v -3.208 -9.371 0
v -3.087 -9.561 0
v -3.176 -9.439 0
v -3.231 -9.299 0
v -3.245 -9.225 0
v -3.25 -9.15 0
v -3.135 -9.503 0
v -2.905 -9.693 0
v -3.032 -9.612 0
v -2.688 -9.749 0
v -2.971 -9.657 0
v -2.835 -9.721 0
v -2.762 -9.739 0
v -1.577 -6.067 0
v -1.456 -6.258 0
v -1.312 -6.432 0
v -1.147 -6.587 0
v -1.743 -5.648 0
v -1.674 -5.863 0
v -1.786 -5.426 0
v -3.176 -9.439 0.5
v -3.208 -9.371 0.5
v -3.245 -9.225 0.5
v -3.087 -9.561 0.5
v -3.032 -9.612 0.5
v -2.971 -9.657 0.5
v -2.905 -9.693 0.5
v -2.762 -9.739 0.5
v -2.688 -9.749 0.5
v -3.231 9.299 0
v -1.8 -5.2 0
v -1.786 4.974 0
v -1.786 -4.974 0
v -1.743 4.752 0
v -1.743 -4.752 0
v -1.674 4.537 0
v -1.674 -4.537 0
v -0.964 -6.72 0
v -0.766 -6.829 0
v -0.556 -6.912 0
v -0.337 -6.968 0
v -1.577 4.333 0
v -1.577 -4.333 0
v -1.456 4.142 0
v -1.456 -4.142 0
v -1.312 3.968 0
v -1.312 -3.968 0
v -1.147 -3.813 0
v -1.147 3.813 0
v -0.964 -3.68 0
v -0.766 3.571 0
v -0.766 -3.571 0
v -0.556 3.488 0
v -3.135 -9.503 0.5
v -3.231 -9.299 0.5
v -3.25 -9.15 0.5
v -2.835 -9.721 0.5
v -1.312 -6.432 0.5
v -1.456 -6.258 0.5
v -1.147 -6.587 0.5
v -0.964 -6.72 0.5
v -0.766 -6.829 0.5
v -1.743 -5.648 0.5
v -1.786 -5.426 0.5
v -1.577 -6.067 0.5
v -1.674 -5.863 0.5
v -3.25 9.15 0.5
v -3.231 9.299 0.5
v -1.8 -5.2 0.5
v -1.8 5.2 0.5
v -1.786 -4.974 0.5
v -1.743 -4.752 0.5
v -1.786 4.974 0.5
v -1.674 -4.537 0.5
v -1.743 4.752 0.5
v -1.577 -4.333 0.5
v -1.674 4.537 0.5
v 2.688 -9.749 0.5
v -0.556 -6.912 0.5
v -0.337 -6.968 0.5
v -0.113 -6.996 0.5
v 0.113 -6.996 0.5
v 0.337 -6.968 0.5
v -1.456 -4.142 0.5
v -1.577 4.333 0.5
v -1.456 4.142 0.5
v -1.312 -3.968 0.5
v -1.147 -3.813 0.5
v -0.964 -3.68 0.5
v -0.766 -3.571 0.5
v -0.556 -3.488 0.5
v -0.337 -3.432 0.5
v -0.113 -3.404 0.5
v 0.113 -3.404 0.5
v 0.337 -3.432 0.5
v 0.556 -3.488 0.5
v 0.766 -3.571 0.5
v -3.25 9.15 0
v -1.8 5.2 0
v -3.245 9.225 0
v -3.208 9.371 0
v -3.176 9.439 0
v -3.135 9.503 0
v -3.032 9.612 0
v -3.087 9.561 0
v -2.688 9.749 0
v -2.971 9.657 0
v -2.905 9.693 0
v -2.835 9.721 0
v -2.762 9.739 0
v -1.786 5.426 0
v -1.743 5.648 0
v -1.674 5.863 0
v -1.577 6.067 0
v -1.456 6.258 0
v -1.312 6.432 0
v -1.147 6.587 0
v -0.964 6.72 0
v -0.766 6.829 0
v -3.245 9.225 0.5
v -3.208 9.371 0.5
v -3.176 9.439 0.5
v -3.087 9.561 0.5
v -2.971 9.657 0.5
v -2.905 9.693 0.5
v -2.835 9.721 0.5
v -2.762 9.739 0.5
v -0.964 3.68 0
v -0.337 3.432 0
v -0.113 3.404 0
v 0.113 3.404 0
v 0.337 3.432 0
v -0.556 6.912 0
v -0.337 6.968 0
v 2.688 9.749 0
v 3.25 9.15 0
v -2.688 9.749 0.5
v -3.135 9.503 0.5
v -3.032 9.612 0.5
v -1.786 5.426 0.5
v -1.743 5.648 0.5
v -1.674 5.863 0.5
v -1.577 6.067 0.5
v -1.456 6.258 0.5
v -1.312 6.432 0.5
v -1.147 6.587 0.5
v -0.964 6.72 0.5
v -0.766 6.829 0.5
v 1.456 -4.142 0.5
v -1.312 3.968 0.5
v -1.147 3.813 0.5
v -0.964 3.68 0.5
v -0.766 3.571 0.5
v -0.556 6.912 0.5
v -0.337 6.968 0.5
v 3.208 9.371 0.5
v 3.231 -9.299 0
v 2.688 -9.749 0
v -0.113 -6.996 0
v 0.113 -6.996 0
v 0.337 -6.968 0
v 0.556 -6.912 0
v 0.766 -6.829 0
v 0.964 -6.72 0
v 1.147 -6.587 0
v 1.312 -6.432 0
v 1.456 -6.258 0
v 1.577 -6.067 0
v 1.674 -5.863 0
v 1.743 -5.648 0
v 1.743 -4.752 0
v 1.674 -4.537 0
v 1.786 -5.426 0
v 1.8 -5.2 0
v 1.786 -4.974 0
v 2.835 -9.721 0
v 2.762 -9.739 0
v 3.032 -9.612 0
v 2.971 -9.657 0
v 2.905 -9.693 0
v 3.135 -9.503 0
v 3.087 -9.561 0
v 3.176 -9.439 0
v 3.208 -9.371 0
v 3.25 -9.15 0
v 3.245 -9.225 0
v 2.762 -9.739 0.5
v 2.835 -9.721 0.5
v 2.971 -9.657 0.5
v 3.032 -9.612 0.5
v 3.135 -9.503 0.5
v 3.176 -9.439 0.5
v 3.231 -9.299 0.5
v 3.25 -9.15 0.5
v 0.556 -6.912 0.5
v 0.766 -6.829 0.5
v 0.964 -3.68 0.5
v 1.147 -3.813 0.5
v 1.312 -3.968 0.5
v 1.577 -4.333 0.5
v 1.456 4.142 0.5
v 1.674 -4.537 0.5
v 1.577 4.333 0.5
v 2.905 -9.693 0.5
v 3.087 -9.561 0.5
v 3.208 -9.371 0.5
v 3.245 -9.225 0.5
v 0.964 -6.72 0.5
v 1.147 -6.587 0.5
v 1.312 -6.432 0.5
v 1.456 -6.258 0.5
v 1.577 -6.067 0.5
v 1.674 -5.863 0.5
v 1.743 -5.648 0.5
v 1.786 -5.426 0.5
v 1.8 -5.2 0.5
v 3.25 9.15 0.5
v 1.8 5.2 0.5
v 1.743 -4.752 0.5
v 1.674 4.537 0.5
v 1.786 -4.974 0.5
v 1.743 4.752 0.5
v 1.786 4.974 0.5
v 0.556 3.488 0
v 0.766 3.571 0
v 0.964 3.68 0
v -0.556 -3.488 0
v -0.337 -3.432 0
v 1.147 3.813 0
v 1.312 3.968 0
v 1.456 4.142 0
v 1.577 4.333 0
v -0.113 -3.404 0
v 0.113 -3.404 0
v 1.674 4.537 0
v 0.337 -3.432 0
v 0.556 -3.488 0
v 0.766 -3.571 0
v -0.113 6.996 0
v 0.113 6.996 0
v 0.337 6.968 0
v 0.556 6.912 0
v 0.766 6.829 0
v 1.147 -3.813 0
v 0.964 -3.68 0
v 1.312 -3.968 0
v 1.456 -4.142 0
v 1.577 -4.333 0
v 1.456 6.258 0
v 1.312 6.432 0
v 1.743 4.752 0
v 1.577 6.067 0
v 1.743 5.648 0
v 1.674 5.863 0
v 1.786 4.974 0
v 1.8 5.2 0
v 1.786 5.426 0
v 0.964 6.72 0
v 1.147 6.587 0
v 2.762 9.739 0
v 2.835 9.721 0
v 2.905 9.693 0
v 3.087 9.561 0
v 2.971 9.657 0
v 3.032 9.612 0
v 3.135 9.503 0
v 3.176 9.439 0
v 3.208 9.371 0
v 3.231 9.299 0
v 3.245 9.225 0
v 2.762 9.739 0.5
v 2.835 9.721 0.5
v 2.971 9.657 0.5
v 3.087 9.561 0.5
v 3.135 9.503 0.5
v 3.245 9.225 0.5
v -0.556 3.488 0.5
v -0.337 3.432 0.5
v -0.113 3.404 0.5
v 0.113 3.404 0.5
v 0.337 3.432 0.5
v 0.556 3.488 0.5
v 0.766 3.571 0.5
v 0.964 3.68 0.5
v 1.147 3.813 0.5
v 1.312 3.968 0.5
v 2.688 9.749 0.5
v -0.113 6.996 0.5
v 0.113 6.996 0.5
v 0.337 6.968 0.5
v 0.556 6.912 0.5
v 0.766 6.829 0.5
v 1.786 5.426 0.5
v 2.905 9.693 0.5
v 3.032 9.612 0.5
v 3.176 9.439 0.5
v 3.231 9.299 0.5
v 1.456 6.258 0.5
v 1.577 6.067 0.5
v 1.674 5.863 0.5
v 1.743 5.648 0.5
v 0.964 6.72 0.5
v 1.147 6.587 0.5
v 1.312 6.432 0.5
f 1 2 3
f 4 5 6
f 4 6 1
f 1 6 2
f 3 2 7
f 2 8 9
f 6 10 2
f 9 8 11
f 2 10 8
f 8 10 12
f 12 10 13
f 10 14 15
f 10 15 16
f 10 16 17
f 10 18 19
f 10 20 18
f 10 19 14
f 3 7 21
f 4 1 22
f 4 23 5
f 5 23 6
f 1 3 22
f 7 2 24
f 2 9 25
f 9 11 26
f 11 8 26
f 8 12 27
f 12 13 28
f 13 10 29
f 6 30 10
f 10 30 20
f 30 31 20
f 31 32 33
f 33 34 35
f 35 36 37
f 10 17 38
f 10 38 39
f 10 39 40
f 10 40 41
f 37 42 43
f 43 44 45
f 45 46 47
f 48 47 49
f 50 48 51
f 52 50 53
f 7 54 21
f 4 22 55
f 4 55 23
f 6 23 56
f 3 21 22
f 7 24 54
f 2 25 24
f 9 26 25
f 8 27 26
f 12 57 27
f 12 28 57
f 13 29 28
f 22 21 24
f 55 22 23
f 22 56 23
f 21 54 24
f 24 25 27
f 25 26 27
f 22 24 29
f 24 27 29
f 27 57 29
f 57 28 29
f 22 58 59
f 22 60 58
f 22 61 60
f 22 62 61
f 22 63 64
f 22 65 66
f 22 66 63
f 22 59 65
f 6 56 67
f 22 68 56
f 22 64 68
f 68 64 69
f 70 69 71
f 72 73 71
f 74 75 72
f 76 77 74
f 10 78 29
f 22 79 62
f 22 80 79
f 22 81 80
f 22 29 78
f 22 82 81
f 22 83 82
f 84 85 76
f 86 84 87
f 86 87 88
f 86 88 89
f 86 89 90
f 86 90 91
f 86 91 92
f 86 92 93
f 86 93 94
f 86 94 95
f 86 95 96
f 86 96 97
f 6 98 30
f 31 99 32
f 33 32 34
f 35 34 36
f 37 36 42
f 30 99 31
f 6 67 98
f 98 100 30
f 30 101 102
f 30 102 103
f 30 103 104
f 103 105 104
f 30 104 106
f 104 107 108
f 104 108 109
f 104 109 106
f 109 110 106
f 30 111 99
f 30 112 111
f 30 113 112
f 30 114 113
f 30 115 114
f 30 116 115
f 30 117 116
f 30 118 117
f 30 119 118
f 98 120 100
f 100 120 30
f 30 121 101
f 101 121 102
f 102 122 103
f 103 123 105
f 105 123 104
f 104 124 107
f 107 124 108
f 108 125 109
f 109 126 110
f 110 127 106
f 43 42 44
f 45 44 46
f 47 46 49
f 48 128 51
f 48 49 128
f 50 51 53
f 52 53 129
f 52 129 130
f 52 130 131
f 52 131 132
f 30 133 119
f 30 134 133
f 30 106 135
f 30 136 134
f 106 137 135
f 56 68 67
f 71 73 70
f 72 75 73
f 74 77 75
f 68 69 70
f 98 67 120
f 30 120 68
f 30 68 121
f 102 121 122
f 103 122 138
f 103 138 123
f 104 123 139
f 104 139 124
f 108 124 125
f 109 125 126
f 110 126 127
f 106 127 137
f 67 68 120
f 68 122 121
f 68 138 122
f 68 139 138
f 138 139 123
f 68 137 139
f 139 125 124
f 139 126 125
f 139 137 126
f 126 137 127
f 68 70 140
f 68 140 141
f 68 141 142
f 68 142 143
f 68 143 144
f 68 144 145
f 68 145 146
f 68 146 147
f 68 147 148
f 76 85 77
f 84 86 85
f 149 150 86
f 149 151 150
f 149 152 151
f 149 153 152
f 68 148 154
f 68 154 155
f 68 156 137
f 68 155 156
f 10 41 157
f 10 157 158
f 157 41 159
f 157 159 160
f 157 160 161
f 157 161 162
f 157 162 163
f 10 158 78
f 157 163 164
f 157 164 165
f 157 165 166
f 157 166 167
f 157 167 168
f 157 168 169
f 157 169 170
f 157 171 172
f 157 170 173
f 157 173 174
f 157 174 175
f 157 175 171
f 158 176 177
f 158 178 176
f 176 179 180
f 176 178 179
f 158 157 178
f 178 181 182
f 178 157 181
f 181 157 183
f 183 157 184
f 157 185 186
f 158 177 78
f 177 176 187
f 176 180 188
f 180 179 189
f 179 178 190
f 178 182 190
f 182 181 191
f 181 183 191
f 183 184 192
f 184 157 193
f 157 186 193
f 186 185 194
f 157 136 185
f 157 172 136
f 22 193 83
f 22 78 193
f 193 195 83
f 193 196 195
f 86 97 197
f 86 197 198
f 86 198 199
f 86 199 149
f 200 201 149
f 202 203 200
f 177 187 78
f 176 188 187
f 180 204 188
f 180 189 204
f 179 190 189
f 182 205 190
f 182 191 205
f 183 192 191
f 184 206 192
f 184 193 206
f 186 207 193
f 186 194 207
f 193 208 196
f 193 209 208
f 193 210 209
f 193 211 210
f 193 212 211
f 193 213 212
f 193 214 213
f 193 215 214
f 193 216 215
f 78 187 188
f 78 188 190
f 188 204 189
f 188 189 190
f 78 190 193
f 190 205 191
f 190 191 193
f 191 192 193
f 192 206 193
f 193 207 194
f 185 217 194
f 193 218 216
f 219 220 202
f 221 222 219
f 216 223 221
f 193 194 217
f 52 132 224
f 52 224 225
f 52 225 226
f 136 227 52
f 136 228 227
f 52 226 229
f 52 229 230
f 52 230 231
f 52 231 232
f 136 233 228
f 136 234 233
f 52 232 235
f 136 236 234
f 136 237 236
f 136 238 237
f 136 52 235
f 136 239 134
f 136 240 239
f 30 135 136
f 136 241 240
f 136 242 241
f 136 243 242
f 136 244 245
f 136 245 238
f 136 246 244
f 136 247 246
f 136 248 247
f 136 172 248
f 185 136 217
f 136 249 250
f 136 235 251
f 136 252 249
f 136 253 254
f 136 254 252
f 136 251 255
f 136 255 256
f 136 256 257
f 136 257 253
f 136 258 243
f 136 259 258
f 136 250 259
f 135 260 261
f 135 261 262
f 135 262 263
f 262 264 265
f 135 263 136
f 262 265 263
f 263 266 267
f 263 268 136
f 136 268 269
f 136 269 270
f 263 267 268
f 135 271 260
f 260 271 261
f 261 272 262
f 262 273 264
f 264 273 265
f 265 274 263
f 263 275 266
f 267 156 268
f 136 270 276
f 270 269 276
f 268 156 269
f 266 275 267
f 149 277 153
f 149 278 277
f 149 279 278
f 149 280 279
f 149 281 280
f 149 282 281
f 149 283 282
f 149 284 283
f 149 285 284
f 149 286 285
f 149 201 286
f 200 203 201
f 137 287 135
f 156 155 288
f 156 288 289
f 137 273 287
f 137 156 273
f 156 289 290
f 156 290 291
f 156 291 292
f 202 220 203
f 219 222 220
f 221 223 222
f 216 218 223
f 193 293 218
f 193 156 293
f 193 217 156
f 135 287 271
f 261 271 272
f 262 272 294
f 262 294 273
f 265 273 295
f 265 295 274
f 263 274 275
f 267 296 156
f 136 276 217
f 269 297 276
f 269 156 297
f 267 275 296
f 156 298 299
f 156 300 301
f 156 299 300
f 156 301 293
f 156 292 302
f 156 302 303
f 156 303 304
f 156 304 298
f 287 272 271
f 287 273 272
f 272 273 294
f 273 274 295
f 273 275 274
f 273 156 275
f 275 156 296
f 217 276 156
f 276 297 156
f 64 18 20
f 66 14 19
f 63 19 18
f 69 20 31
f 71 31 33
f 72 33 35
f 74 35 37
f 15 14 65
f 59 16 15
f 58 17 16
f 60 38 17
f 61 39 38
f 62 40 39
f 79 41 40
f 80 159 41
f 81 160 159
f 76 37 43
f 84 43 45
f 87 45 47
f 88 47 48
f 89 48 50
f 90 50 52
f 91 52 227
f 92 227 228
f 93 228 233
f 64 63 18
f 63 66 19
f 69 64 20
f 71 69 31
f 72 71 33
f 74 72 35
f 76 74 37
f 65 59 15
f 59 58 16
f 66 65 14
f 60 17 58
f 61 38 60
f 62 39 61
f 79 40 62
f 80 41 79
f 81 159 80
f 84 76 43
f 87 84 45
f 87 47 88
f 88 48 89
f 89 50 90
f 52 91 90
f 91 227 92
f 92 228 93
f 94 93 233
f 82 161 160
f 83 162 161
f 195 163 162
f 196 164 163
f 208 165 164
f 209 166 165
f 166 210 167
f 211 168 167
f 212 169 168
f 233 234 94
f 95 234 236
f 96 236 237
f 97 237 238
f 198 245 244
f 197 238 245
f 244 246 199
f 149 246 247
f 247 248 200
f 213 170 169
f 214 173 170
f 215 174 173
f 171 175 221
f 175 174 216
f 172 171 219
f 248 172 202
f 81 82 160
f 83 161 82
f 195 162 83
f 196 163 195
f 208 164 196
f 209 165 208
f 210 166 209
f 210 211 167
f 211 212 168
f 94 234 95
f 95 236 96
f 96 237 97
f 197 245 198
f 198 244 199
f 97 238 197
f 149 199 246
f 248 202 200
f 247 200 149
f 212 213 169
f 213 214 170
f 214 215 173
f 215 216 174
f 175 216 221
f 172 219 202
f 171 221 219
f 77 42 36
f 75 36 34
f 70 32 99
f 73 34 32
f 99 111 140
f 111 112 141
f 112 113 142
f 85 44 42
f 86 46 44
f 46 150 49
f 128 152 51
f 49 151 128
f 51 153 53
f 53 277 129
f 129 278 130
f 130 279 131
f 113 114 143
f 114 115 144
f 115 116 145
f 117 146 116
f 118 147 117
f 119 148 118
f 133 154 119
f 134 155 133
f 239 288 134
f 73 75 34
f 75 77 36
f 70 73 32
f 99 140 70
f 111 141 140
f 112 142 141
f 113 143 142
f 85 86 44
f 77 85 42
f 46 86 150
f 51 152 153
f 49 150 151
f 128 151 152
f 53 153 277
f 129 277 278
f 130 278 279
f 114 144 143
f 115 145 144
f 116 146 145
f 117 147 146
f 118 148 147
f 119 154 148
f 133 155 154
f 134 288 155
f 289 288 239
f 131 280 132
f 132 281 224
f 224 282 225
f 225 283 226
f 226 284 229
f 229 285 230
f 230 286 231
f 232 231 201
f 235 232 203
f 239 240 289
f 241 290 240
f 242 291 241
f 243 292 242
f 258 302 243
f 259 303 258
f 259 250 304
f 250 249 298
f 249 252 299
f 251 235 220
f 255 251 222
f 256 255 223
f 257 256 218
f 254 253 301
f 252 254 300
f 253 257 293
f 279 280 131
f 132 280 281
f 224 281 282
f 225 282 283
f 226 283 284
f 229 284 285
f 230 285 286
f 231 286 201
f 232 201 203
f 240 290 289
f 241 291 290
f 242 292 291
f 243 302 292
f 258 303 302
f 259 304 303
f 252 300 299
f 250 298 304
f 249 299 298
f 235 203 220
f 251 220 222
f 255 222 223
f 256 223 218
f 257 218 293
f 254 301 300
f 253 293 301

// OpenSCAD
$fn = 50;

difference() {
	union() {
		translate(v = [34.5, 0, 0.5]) {
			rotate(a = [0, 0, 0]) {
				difference() {
					union() {
						translate(v = [-34.5, 0, -0.5]) {
							hull() {
								translate(v = [-2.65, 9.15, 0]) {
									cylinder(h = 0.5, r = 0.6);
								}
								translate(v = [2.65, 9.15, 0]) {
									cylinder(h = 0.5, r = 0.6);
								}
								translate(v = [-2.65, -9.15, 0]) {
									cylinder(h = 0.5, r = 0.6);
								}
								translate(v = [2.65, -9.15, 0]) {
									cylinder(h = 0.5, r = 0.6);
								}
							}
						}
					}
					union() {
						translate(v = [-34.5, -5.2, -1.5]) {
							cylinder(h = 2.5, r = 1.8);
						}
						translate(v = [-34.5, 5.2, -1.5]) {
							cylinder(h = 2.5, r = 1.8);
						}
					}
				}
			}
		}
	}
	union();
}
